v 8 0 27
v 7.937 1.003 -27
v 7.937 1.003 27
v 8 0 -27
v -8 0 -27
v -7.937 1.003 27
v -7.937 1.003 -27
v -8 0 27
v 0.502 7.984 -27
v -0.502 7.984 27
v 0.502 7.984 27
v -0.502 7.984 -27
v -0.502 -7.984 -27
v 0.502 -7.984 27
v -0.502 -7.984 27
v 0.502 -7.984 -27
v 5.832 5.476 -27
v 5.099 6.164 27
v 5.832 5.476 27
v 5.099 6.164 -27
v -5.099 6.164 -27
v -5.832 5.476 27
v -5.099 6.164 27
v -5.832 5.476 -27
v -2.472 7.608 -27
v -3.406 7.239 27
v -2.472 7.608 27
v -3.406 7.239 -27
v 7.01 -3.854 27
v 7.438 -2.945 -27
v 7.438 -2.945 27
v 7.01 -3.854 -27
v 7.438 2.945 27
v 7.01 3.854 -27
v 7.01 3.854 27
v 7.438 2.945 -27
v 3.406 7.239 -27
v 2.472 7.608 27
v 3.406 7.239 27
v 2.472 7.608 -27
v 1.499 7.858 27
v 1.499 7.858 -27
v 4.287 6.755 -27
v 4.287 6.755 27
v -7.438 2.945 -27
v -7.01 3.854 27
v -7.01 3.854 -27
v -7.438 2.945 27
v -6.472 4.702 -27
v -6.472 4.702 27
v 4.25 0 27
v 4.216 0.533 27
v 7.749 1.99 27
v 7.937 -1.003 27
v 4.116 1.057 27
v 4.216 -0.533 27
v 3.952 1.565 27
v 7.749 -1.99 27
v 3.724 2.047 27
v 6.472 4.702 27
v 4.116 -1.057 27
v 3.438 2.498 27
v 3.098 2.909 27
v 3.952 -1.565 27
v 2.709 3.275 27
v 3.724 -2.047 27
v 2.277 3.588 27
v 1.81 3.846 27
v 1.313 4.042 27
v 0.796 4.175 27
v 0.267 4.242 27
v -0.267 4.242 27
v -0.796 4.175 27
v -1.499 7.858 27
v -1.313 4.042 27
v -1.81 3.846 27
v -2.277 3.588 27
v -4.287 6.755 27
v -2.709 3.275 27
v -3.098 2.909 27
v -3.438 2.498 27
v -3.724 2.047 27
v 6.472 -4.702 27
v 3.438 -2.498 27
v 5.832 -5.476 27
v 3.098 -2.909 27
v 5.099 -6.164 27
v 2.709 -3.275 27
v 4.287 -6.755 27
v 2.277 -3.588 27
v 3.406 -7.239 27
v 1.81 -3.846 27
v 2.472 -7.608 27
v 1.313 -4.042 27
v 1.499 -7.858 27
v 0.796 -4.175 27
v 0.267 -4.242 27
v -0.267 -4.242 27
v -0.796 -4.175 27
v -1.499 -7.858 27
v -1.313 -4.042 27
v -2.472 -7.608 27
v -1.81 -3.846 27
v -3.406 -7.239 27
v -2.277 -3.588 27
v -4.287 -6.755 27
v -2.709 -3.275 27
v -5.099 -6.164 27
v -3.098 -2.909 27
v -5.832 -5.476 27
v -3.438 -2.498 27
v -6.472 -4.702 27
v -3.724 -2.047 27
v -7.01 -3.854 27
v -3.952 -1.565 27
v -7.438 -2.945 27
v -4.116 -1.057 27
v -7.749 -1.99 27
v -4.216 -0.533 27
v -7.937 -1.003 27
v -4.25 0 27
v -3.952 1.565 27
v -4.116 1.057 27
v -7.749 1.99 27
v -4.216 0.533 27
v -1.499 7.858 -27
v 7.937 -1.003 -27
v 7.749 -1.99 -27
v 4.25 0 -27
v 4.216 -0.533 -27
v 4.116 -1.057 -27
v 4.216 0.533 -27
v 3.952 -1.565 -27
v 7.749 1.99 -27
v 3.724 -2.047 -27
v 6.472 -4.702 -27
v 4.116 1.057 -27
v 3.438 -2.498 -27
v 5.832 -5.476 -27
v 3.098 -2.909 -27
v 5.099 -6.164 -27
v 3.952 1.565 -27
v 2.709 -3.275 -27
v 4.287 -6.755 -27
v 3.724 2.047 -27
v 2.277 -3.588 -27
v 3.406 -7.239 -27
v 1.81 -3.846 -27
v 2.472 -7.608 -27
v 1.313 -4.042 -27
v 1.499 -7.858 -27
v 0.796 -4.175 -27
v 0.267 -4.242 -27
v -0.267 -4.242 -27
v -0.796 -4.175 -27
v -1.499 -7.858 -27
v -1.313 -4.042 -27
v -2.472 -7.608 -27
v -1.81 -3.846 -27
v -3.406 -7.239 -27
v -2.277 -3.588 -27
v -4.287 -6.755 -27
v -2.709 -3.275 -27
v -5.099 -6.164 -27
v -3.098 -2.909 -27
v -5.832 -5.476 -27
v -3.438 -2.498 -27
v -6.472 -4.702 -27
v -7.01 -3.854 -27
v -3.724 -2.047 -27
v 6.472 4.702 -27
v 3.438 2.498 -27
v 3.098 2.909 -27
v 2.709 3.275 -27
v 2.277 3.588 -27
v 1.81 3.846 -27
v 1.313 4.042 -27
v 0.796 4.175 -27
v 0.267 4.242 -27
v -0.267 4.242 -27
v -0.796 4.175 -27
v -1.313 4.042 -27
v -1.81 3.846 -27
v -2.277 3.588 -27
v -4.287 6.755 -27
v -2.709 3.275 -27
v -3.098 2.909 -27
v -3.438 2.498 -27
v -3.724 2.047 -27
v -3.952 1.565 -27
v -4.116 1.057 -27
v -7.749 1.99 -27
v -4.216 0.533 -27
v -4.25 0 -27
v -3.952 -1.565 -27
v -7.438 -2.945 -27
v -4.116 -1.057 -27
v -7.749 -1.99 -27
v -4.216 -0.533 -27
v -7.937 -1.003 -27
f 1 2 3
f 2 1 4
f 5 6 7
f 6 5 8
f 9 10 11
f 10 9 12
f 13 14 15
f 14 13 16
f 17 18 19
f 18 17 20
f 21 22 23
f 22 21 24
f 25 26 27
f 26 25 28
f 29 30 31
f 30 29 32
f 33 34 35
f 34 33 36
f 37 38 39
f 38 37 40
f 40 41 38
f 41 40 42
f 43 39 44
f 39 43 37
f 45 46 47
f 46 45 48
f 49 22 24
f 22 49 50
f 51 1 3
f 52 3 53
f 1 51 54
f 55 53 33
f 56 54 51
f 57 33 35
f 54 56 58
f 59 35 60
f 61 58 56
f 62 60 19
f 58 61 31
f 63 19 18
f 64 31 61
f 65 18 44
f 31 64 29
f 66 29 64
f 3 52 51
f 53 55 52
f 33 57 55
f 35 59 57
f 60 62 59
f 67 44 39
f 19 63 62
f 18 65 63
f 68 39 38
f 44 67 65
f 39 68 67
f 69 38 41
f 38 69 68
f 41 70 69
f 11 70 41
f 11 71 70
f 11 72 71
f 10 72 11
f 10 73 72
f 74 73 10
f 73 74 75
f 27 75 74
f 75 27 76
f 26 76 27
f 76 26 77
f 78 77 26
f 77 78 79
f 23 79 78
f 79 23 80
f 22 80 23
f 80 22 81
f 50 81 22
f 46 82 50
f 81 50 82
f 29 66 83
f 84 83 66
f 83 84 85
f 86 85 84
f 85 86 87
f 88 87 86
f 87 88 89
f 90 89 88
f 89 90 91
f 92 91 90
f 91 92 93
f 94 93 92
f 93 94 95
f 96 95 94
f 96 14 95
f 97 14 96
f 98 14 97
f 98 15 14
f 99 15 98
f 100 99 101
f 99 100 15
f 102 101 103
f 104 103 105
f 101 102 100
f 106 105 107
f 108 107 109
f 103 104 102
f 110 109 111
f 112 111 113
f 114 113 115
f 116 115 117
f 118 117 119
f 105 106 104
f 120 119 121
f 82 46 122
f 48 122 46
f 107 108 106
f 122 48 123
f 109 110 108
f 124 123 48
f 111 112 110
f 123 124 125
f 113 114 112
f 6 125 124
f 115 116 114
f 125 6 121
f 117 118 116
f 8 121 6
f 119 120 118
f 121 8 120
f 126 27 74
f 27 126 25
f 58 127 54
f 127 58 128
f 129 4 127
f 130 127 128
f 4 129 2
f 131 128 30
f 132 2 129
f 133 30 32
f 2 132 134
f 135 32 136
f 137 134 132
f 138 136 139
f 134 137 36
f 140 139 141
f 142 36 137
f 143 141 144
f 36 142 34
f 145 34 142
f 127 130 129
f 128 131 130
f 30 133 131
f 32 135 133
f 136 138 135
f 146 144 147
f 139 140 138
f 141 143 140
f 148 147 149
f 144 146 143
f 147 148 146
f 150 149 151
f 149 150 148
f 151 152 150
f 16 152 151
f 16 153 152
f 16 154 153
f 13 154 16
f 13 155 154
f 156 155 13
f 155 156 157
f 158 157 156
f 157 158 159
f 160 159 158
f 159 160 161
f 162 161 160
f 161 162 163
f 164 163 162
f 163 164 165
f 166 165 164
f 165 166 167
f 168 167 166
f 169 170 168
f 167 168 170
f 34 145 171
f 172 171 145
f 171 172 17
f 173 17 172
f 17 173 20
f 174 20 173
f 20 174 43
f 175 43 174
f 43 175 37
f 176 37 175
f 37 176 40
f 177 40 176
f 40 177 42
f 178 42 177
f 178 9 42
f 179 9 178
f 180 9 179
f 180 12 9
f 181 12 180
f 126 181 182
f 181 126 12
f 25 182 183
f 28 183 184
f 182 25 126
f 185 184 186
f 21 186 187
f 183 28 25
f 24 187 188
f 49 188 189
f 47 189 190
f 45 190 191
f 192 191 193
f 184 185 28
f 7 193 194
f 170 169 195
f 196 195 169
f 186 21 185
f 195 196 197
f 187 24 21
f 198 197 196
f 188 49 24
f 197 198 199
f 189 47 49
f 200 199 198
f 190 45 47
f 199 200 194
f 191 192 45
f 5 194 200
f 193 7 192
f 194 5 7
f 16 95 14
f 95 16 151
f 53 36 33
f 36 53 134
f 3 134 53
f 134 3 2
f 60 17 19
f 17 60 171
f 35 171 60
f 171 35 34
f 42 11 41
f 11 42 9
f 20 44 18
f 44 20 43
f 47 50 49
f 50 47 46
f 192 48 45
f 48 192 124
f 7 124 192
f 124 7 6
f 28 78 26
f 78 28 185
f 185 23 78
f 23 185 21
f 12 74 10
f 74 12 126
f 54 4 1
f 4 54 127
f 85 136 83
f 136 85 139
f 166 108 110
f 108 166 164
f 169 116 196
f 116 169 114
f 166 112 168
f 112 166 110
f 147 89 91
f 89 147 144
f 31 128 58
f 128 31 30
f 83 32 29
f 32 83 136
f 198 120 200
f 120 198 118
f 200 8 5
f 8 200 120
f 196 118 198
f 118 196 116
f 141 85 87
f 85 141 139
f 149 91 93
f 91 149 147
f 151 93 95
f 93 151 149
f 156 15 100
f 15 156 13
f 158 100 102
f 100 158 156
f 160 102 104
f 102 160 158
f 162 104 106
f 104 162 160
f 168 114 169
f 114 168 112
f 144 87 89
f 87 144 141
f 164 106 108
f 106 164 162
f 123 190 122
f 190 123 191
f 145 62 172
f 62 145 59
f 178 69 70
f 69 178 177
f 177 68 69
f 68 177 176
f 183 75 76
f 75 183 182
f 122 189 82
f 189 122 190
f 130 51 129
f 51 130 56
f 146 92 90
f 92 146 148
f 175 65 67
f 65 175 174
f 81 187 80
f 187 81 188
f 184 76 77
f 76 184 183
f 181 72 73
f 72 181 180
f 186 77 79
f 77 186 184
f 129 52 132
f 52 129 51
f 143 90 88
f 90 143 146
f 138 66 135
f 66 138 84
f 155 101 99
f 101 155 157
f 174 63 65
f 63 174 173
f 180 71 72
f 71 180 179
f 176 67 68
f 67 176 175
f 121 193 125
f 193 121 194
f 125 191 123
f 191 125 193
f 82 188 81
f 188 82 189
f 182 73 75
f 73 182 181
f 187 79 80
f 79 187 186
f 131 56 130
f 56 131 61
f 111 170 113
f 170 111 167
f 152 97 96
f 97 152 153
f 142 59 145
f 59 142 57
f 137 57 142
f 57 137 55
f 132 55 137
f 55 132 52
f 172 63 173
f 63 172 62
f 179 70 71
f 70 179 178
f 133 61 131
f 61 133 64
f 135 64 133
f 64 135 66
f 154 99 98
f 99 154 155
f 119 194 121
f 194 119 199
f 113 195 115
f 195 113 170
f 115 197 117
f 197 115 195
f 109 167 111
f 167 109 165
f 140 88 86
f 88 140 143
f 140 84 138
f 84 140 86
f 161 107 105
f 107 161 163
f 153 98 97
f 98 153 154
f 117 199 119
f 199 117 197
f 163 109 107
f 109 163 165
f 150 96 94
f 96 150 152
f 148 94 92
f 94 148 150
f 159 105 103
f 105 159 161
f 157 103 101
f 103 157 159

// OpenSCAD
$fn = 50;


difference() {
	union() {
		translate(v = [0, 0, -27.0000000000]) {
			cylinder(h = 54, r = 8.0000000000);
		}
	}
	union() {
		translate(v = [0, 0, -100.0000000000]) {
			cylinder(h = 200, r = 4.2500000000);
		}
	}
}
